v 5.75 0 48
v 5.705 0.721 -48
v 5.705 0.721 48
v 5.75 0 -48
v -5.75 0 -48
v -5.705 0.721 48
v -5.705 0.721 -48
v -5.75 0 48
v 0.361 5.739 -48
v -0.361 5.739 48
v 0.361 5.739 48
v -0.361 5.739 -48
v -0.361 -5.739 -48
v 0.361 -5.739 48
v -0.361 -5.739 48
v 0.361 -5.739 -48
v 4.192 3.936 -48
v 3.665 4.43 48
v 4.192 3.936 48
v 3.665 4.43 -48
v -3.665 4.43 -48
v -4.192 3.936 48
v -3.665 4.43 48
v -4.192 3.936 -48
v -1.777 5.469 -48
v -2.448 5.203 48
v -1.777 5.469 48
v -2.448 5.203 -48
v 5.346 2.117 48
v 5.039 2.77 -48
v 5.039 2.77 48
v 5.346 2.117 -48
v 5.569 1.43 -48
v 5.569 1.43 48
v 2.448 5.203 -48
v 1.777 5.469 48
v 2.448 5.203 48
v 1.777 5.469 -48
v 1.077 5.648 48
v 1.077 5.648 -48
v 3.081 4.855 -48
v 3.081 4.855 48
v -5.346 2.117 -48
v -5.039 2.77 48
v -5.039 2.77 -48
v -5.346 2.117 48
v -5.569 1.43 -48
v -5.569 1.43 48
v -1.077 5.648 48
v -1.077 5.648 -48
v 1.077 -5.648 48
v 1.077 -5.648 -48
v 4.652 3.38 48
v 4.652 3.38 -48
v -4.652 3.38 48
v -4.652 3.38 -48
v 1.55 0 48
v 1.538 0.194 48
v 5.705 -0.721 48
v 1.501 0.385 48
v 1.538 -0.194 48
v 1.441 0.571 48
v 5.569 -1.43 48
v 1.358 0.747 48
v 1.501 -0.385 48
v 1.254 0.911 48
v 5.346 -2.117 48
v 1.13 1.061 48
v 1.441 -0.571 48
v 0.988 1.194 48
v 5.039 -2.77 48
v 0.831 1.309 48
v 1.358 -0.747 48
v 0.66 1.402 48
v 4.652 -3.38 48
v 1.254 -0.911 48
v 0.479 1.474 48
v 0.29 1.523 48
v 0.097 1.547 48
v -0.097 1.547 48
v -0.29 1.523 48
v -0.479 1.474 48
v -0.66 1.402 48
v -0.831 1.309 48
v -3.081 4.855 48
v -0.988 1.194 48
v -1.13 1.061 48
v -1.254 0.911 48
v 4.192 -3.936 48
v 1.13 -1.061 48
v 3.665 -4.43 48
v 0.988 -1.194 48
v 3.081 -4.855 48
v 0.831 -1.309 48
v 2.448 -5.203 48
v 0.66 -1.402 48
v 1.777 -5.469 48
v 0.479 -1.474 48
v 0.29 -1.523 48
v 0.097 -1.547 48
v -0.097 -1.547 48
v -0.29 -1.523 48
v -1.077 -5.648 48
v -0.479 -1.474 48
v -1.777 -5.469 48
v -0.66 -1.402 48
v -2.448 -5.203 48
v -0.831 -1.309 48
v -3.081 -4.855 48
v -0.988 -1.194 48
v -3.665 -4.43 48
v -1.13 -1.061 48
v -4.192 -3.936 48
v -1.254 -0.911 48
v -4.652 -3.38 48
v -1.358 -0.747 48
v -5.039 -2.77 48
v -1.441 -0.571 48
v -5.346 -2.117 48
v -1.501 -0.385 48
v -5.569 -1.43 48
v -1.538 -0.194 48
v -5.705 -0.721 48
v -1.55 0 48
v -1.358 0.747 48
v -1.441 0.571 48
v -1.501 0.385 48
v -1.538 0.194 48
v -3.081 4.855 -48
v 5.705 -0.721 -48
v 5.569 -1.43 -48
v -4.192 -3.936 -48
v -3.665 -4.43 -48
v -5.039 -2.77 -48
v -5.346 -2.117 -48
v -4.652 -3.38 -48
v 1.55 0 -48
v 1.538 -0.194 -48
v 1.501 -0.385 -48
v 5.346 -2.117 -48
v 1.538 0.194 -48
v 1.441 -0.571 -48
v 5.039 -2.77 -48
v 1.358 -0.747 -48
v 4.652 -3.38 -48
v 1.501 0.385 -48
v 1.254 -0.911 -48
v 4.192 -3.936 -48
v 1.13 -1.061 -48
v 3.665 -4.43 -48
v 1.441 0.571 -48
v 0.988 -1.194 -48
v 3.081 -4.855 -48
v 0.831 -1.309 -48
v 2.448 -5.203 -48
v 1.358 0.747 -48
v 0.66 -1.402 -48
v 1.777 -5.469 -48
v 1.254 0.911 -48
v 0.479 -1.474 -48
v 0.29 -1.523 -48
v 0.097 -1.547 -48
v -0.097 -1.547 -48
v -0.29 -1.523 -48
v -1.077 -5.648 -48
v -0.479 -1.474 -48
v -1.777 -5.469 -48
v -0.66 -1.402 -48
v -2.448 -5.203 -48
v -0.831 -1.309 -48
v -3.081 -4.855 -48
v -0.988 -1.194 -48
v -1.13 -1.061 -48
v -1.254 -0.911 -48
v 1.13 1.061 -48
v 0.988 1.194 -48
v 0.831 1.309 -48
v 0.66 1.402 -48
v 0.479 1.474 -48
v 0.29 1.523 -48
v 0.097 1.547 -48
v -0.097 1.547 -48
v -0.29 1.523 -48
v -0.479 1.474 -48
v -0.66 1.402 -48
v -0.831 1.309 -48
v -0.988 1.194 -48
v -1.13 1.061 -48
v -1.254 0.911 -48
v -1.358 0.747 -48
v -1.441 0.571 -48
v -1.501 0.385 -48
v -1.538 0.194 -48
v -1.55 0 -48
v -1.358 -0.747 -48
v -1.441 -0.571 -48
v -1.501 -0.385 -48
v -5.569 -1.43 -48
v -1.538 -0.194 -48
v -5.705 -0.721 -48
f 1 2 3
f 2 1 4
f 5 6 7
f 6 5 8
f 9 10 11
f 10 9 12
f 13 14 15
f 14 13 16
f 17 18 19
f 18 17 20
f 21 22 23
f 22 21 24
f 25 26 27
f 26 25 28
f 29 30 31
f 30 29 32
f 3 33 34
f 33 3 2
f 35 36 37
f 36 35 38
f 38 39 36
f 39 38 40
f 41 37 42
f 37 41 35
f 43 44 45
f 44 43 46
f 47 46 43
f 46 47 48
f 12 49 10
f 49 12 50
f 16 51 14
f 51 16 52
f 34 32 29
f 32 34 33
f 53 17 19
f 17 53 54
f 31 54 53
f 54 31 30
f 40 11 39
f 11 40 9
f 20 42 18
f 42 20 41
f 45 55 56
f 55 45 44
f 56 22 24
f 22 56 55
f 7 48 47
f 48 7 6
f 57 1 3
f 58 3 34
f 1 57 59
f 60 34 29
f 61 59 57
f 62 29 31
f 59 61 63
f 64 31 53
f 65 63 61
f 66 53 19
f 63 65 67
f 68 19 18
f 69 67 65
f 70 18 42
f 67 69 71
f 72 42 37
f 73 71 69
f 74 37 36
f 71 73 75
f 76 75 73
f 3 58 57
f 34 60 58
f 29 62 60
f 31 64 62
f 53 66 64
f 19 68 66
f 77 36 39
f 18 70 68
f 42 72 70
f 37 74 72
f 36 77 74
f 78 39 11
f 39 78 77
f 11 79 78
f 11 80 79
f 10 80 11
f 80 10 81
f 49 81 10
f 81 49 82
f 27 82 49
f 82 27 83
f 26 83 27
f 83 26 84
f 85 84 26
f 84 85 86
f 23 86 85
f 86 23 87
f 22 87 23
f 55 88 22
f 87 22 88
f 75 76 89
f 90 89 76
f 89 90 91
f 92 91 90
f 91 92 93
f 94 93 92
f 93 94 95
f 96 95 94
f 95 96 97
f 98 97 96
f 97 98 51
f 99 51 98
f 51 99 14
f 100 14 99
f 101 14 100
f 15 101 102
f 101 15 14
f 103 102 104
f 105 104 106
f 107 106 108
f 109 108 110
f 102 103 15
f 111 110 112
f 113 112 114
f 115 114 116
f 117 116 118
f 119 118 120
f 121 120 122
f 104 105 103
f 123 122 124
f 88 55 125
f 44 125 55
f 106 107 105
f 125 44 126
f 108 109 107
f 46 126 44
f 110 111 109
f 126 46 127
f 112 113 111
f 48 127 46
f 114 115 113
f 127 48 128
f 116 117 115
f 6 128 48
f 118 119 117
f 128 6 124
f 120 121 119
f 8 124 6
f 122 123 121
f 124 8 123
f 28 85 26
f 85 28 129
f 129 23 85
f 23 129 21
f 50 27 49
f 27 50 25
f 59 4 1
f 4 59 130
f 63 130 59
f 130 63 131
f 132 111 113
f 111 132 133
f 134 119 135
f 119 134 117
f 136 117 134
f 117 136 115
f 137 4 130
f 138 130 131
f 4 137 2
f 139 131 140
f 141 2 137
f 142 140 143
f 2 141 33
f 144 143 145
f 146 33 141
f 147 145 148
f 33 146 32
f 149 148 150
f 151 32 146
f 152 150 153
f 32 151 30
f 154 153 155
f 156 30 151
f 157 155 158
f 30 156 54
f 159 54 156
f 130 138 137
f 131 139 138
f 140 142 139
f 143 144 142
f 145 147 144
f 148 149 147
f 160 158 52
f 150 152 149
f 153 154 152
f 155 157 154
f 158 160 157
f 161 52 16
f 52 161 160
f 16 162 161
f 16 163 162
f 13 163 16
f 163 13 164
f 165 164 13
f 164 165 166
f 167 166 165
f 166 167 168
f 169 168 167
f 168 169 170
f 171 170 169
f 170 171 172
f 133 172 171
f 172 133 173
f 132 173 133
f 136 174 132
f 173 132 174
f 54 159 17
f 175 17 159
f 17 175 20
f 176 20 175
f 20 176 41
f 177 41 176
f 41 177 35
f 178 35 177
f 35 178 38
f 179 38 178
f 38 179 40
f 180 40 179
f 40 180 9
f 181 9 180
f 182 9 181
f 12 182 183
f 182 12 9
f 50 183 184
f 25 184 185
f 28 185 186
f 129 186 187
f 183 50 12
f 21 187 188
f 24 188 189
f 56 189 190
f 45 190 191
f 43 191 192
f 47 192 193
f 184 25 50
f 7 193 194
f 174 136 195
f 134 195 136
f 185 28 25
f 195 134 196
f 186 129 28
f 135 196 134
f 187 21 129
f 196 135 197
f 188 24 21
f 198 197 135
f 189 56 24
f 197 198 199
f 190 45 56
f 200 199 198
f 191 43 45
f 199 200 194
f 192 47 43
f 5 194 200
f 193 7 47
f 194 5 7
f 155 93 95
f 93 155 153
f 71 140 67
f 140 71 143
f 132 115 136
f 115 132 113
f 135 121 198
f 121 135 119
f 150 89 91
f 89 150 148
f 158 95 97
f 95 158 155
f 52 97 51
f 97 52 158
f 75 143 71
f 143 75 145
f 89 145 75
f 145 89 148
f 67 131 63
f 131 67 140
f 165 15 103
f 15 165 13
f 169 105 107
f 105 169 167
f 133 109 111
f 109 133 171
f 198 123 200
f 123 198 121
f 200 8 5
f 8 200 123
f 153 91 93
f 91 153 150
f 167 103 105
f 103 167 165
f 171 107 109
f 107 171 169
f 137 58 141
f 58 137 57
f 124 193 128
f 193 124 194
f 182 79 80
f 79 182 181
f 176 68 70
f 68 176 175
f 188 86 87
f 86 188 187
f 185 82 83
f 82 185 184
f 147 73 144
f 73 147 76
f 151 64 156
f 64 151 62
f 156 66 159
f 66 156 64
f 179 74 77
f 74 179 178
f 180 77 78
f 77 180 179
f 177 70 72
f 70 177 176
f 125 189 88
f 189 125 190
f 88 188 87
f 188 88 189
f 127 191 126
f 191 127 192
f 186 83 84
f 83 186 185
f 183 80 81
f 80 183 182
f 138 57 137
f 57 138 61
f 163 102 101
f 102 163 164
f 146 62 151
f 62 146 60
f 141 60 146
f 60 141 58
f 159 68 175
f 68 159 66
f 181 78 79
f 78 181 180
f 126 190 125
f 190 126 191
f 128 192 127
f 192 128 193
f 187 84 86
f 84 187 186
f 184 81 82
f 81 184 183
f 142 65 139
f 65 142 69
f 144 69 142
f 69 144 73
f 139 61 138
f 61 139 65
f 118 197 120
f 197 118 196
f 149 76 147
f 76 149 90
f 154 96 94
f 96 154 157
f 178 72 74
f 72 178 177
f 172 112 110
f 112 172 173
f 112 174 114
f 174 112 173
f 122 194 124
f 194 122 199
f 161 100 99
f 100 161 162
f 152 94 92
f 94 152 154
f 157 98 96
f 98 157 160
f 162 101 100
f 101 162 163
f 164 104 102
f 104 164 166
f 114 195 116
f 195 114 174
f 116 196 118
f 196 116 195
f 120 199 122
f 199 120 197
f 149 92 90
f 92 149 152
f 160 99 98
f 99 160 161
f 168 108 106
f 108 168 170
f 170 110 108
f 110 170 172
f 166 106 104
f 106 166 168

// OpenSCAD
$fn = 50;


difference() {
	union() {
		translate(v = [0, 0, -48.0000000000]) {
			cylinder(h = 96, r = 5.7500000000);
		}
	}
	union() {
		translate(v = [0, 0, -100.0000000000]) {
			cylinder(h = 200, r = 1.5500000000);
		}
	}
}
